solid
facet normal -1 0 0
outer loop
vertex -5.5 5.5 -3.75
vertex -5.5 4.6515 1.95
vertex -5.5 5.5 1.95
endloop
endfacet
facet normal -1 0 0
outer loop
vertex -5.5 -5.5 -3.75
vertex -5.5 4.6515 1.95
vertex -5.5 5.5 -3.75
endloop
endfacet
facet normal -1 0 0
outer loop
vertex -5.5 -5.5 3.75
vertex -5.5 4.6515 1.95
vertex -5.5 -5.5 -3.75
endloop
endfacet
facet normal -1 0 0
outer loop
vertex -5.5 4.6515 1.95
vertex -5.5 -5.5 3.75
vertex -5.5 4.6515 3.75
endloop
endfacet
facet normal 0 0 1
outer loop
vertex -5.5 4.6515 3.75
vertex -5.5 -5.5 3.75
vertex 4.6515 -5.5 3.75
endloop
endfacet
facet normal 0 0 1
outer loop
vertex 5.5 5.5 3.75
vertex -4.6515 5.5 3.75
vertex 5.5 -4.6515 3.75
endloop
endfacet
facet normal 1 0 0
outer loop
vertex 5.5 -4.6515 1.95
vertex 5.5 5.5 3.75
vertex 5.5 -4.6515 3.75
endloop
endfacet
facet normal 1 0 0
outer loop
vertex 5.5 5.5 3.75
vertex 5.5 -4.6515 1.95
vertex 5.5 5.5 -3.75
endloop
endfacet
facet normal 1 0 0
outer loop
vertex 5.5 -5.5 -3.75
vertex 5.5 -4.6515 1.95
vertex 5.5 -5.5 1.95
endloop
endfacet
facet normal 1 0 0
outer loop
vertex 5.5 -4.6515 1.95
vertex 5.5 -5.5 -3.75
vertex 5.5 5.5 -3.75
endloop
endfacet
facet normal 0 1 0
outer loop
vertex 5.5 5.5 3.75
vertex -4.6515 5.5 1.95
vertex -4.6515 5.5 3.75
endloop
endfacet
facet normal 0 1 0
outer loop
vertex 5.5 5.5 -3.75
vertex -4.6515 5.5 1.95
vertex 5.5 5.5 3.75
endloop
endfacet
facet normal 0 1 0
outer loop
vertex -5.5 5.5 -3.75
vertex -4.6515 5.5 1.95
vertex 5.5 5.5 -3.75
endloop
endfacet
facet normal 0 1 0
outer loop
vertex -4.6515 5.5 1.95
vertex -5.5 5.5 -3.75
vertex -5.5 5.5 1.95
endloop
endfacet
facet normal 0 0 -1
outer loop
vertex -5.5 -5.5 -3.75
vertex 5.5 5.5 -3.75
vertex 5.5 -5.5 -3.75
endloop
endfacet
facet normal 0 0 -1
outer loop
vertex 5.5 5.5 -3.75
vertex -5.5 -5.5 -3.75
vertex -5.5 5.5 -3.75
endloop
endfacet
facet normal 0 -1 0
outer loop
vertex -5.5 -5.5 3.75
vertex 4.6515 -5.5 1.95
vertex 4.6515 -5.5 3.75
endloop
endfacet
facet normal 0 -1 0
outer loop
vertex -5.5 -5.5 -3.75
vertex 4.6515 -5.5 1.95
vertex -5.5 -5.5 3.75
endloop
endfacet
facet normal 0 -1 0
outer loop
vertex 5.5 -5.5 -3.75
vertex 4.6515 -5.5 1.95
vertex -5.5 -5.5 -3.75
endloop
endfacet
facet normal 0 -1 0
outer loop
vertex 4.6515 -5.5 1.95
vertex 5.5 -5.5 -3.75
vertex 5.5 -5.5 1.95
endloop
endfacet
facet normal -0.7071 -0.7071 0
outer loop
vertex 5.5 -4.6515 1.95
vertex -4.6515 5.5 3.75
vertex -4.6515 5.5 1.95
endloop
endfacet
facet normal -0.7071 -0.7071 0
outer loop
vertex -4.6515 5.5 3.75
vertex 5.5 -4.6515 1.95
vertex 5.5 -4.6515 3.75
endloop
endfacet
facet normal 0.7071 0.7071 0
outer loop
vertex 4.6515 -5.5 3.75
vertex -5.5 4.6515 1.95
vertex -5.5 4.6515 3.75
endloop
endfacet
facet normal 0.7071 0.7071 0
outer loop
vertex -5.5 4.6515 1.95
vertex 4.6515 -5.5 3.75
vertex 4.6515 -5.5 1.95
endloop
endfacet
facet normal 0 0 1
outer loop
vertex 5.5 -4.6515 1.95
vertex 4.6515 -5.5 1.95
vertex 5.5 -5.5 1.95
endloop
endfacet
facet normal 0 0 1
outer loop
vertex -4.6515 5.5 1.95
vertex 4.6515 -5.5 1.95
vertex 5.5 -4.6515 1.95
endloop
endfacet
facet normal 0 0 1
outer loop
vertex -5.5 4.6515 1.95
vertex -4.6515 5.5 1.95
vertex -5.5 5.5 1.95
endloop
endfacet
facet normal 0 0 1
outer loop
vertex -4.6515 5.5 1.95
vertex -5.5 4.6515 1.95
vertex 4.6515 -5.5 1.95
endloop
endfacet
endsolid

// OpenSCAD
difference()
{

cube([11,11,7.5], center = true);

rotate([0,0,45])
translate([-0.6,-15,1.95])
cube([1.2,31,30], center = false); //ranura para el dispositivo
}
